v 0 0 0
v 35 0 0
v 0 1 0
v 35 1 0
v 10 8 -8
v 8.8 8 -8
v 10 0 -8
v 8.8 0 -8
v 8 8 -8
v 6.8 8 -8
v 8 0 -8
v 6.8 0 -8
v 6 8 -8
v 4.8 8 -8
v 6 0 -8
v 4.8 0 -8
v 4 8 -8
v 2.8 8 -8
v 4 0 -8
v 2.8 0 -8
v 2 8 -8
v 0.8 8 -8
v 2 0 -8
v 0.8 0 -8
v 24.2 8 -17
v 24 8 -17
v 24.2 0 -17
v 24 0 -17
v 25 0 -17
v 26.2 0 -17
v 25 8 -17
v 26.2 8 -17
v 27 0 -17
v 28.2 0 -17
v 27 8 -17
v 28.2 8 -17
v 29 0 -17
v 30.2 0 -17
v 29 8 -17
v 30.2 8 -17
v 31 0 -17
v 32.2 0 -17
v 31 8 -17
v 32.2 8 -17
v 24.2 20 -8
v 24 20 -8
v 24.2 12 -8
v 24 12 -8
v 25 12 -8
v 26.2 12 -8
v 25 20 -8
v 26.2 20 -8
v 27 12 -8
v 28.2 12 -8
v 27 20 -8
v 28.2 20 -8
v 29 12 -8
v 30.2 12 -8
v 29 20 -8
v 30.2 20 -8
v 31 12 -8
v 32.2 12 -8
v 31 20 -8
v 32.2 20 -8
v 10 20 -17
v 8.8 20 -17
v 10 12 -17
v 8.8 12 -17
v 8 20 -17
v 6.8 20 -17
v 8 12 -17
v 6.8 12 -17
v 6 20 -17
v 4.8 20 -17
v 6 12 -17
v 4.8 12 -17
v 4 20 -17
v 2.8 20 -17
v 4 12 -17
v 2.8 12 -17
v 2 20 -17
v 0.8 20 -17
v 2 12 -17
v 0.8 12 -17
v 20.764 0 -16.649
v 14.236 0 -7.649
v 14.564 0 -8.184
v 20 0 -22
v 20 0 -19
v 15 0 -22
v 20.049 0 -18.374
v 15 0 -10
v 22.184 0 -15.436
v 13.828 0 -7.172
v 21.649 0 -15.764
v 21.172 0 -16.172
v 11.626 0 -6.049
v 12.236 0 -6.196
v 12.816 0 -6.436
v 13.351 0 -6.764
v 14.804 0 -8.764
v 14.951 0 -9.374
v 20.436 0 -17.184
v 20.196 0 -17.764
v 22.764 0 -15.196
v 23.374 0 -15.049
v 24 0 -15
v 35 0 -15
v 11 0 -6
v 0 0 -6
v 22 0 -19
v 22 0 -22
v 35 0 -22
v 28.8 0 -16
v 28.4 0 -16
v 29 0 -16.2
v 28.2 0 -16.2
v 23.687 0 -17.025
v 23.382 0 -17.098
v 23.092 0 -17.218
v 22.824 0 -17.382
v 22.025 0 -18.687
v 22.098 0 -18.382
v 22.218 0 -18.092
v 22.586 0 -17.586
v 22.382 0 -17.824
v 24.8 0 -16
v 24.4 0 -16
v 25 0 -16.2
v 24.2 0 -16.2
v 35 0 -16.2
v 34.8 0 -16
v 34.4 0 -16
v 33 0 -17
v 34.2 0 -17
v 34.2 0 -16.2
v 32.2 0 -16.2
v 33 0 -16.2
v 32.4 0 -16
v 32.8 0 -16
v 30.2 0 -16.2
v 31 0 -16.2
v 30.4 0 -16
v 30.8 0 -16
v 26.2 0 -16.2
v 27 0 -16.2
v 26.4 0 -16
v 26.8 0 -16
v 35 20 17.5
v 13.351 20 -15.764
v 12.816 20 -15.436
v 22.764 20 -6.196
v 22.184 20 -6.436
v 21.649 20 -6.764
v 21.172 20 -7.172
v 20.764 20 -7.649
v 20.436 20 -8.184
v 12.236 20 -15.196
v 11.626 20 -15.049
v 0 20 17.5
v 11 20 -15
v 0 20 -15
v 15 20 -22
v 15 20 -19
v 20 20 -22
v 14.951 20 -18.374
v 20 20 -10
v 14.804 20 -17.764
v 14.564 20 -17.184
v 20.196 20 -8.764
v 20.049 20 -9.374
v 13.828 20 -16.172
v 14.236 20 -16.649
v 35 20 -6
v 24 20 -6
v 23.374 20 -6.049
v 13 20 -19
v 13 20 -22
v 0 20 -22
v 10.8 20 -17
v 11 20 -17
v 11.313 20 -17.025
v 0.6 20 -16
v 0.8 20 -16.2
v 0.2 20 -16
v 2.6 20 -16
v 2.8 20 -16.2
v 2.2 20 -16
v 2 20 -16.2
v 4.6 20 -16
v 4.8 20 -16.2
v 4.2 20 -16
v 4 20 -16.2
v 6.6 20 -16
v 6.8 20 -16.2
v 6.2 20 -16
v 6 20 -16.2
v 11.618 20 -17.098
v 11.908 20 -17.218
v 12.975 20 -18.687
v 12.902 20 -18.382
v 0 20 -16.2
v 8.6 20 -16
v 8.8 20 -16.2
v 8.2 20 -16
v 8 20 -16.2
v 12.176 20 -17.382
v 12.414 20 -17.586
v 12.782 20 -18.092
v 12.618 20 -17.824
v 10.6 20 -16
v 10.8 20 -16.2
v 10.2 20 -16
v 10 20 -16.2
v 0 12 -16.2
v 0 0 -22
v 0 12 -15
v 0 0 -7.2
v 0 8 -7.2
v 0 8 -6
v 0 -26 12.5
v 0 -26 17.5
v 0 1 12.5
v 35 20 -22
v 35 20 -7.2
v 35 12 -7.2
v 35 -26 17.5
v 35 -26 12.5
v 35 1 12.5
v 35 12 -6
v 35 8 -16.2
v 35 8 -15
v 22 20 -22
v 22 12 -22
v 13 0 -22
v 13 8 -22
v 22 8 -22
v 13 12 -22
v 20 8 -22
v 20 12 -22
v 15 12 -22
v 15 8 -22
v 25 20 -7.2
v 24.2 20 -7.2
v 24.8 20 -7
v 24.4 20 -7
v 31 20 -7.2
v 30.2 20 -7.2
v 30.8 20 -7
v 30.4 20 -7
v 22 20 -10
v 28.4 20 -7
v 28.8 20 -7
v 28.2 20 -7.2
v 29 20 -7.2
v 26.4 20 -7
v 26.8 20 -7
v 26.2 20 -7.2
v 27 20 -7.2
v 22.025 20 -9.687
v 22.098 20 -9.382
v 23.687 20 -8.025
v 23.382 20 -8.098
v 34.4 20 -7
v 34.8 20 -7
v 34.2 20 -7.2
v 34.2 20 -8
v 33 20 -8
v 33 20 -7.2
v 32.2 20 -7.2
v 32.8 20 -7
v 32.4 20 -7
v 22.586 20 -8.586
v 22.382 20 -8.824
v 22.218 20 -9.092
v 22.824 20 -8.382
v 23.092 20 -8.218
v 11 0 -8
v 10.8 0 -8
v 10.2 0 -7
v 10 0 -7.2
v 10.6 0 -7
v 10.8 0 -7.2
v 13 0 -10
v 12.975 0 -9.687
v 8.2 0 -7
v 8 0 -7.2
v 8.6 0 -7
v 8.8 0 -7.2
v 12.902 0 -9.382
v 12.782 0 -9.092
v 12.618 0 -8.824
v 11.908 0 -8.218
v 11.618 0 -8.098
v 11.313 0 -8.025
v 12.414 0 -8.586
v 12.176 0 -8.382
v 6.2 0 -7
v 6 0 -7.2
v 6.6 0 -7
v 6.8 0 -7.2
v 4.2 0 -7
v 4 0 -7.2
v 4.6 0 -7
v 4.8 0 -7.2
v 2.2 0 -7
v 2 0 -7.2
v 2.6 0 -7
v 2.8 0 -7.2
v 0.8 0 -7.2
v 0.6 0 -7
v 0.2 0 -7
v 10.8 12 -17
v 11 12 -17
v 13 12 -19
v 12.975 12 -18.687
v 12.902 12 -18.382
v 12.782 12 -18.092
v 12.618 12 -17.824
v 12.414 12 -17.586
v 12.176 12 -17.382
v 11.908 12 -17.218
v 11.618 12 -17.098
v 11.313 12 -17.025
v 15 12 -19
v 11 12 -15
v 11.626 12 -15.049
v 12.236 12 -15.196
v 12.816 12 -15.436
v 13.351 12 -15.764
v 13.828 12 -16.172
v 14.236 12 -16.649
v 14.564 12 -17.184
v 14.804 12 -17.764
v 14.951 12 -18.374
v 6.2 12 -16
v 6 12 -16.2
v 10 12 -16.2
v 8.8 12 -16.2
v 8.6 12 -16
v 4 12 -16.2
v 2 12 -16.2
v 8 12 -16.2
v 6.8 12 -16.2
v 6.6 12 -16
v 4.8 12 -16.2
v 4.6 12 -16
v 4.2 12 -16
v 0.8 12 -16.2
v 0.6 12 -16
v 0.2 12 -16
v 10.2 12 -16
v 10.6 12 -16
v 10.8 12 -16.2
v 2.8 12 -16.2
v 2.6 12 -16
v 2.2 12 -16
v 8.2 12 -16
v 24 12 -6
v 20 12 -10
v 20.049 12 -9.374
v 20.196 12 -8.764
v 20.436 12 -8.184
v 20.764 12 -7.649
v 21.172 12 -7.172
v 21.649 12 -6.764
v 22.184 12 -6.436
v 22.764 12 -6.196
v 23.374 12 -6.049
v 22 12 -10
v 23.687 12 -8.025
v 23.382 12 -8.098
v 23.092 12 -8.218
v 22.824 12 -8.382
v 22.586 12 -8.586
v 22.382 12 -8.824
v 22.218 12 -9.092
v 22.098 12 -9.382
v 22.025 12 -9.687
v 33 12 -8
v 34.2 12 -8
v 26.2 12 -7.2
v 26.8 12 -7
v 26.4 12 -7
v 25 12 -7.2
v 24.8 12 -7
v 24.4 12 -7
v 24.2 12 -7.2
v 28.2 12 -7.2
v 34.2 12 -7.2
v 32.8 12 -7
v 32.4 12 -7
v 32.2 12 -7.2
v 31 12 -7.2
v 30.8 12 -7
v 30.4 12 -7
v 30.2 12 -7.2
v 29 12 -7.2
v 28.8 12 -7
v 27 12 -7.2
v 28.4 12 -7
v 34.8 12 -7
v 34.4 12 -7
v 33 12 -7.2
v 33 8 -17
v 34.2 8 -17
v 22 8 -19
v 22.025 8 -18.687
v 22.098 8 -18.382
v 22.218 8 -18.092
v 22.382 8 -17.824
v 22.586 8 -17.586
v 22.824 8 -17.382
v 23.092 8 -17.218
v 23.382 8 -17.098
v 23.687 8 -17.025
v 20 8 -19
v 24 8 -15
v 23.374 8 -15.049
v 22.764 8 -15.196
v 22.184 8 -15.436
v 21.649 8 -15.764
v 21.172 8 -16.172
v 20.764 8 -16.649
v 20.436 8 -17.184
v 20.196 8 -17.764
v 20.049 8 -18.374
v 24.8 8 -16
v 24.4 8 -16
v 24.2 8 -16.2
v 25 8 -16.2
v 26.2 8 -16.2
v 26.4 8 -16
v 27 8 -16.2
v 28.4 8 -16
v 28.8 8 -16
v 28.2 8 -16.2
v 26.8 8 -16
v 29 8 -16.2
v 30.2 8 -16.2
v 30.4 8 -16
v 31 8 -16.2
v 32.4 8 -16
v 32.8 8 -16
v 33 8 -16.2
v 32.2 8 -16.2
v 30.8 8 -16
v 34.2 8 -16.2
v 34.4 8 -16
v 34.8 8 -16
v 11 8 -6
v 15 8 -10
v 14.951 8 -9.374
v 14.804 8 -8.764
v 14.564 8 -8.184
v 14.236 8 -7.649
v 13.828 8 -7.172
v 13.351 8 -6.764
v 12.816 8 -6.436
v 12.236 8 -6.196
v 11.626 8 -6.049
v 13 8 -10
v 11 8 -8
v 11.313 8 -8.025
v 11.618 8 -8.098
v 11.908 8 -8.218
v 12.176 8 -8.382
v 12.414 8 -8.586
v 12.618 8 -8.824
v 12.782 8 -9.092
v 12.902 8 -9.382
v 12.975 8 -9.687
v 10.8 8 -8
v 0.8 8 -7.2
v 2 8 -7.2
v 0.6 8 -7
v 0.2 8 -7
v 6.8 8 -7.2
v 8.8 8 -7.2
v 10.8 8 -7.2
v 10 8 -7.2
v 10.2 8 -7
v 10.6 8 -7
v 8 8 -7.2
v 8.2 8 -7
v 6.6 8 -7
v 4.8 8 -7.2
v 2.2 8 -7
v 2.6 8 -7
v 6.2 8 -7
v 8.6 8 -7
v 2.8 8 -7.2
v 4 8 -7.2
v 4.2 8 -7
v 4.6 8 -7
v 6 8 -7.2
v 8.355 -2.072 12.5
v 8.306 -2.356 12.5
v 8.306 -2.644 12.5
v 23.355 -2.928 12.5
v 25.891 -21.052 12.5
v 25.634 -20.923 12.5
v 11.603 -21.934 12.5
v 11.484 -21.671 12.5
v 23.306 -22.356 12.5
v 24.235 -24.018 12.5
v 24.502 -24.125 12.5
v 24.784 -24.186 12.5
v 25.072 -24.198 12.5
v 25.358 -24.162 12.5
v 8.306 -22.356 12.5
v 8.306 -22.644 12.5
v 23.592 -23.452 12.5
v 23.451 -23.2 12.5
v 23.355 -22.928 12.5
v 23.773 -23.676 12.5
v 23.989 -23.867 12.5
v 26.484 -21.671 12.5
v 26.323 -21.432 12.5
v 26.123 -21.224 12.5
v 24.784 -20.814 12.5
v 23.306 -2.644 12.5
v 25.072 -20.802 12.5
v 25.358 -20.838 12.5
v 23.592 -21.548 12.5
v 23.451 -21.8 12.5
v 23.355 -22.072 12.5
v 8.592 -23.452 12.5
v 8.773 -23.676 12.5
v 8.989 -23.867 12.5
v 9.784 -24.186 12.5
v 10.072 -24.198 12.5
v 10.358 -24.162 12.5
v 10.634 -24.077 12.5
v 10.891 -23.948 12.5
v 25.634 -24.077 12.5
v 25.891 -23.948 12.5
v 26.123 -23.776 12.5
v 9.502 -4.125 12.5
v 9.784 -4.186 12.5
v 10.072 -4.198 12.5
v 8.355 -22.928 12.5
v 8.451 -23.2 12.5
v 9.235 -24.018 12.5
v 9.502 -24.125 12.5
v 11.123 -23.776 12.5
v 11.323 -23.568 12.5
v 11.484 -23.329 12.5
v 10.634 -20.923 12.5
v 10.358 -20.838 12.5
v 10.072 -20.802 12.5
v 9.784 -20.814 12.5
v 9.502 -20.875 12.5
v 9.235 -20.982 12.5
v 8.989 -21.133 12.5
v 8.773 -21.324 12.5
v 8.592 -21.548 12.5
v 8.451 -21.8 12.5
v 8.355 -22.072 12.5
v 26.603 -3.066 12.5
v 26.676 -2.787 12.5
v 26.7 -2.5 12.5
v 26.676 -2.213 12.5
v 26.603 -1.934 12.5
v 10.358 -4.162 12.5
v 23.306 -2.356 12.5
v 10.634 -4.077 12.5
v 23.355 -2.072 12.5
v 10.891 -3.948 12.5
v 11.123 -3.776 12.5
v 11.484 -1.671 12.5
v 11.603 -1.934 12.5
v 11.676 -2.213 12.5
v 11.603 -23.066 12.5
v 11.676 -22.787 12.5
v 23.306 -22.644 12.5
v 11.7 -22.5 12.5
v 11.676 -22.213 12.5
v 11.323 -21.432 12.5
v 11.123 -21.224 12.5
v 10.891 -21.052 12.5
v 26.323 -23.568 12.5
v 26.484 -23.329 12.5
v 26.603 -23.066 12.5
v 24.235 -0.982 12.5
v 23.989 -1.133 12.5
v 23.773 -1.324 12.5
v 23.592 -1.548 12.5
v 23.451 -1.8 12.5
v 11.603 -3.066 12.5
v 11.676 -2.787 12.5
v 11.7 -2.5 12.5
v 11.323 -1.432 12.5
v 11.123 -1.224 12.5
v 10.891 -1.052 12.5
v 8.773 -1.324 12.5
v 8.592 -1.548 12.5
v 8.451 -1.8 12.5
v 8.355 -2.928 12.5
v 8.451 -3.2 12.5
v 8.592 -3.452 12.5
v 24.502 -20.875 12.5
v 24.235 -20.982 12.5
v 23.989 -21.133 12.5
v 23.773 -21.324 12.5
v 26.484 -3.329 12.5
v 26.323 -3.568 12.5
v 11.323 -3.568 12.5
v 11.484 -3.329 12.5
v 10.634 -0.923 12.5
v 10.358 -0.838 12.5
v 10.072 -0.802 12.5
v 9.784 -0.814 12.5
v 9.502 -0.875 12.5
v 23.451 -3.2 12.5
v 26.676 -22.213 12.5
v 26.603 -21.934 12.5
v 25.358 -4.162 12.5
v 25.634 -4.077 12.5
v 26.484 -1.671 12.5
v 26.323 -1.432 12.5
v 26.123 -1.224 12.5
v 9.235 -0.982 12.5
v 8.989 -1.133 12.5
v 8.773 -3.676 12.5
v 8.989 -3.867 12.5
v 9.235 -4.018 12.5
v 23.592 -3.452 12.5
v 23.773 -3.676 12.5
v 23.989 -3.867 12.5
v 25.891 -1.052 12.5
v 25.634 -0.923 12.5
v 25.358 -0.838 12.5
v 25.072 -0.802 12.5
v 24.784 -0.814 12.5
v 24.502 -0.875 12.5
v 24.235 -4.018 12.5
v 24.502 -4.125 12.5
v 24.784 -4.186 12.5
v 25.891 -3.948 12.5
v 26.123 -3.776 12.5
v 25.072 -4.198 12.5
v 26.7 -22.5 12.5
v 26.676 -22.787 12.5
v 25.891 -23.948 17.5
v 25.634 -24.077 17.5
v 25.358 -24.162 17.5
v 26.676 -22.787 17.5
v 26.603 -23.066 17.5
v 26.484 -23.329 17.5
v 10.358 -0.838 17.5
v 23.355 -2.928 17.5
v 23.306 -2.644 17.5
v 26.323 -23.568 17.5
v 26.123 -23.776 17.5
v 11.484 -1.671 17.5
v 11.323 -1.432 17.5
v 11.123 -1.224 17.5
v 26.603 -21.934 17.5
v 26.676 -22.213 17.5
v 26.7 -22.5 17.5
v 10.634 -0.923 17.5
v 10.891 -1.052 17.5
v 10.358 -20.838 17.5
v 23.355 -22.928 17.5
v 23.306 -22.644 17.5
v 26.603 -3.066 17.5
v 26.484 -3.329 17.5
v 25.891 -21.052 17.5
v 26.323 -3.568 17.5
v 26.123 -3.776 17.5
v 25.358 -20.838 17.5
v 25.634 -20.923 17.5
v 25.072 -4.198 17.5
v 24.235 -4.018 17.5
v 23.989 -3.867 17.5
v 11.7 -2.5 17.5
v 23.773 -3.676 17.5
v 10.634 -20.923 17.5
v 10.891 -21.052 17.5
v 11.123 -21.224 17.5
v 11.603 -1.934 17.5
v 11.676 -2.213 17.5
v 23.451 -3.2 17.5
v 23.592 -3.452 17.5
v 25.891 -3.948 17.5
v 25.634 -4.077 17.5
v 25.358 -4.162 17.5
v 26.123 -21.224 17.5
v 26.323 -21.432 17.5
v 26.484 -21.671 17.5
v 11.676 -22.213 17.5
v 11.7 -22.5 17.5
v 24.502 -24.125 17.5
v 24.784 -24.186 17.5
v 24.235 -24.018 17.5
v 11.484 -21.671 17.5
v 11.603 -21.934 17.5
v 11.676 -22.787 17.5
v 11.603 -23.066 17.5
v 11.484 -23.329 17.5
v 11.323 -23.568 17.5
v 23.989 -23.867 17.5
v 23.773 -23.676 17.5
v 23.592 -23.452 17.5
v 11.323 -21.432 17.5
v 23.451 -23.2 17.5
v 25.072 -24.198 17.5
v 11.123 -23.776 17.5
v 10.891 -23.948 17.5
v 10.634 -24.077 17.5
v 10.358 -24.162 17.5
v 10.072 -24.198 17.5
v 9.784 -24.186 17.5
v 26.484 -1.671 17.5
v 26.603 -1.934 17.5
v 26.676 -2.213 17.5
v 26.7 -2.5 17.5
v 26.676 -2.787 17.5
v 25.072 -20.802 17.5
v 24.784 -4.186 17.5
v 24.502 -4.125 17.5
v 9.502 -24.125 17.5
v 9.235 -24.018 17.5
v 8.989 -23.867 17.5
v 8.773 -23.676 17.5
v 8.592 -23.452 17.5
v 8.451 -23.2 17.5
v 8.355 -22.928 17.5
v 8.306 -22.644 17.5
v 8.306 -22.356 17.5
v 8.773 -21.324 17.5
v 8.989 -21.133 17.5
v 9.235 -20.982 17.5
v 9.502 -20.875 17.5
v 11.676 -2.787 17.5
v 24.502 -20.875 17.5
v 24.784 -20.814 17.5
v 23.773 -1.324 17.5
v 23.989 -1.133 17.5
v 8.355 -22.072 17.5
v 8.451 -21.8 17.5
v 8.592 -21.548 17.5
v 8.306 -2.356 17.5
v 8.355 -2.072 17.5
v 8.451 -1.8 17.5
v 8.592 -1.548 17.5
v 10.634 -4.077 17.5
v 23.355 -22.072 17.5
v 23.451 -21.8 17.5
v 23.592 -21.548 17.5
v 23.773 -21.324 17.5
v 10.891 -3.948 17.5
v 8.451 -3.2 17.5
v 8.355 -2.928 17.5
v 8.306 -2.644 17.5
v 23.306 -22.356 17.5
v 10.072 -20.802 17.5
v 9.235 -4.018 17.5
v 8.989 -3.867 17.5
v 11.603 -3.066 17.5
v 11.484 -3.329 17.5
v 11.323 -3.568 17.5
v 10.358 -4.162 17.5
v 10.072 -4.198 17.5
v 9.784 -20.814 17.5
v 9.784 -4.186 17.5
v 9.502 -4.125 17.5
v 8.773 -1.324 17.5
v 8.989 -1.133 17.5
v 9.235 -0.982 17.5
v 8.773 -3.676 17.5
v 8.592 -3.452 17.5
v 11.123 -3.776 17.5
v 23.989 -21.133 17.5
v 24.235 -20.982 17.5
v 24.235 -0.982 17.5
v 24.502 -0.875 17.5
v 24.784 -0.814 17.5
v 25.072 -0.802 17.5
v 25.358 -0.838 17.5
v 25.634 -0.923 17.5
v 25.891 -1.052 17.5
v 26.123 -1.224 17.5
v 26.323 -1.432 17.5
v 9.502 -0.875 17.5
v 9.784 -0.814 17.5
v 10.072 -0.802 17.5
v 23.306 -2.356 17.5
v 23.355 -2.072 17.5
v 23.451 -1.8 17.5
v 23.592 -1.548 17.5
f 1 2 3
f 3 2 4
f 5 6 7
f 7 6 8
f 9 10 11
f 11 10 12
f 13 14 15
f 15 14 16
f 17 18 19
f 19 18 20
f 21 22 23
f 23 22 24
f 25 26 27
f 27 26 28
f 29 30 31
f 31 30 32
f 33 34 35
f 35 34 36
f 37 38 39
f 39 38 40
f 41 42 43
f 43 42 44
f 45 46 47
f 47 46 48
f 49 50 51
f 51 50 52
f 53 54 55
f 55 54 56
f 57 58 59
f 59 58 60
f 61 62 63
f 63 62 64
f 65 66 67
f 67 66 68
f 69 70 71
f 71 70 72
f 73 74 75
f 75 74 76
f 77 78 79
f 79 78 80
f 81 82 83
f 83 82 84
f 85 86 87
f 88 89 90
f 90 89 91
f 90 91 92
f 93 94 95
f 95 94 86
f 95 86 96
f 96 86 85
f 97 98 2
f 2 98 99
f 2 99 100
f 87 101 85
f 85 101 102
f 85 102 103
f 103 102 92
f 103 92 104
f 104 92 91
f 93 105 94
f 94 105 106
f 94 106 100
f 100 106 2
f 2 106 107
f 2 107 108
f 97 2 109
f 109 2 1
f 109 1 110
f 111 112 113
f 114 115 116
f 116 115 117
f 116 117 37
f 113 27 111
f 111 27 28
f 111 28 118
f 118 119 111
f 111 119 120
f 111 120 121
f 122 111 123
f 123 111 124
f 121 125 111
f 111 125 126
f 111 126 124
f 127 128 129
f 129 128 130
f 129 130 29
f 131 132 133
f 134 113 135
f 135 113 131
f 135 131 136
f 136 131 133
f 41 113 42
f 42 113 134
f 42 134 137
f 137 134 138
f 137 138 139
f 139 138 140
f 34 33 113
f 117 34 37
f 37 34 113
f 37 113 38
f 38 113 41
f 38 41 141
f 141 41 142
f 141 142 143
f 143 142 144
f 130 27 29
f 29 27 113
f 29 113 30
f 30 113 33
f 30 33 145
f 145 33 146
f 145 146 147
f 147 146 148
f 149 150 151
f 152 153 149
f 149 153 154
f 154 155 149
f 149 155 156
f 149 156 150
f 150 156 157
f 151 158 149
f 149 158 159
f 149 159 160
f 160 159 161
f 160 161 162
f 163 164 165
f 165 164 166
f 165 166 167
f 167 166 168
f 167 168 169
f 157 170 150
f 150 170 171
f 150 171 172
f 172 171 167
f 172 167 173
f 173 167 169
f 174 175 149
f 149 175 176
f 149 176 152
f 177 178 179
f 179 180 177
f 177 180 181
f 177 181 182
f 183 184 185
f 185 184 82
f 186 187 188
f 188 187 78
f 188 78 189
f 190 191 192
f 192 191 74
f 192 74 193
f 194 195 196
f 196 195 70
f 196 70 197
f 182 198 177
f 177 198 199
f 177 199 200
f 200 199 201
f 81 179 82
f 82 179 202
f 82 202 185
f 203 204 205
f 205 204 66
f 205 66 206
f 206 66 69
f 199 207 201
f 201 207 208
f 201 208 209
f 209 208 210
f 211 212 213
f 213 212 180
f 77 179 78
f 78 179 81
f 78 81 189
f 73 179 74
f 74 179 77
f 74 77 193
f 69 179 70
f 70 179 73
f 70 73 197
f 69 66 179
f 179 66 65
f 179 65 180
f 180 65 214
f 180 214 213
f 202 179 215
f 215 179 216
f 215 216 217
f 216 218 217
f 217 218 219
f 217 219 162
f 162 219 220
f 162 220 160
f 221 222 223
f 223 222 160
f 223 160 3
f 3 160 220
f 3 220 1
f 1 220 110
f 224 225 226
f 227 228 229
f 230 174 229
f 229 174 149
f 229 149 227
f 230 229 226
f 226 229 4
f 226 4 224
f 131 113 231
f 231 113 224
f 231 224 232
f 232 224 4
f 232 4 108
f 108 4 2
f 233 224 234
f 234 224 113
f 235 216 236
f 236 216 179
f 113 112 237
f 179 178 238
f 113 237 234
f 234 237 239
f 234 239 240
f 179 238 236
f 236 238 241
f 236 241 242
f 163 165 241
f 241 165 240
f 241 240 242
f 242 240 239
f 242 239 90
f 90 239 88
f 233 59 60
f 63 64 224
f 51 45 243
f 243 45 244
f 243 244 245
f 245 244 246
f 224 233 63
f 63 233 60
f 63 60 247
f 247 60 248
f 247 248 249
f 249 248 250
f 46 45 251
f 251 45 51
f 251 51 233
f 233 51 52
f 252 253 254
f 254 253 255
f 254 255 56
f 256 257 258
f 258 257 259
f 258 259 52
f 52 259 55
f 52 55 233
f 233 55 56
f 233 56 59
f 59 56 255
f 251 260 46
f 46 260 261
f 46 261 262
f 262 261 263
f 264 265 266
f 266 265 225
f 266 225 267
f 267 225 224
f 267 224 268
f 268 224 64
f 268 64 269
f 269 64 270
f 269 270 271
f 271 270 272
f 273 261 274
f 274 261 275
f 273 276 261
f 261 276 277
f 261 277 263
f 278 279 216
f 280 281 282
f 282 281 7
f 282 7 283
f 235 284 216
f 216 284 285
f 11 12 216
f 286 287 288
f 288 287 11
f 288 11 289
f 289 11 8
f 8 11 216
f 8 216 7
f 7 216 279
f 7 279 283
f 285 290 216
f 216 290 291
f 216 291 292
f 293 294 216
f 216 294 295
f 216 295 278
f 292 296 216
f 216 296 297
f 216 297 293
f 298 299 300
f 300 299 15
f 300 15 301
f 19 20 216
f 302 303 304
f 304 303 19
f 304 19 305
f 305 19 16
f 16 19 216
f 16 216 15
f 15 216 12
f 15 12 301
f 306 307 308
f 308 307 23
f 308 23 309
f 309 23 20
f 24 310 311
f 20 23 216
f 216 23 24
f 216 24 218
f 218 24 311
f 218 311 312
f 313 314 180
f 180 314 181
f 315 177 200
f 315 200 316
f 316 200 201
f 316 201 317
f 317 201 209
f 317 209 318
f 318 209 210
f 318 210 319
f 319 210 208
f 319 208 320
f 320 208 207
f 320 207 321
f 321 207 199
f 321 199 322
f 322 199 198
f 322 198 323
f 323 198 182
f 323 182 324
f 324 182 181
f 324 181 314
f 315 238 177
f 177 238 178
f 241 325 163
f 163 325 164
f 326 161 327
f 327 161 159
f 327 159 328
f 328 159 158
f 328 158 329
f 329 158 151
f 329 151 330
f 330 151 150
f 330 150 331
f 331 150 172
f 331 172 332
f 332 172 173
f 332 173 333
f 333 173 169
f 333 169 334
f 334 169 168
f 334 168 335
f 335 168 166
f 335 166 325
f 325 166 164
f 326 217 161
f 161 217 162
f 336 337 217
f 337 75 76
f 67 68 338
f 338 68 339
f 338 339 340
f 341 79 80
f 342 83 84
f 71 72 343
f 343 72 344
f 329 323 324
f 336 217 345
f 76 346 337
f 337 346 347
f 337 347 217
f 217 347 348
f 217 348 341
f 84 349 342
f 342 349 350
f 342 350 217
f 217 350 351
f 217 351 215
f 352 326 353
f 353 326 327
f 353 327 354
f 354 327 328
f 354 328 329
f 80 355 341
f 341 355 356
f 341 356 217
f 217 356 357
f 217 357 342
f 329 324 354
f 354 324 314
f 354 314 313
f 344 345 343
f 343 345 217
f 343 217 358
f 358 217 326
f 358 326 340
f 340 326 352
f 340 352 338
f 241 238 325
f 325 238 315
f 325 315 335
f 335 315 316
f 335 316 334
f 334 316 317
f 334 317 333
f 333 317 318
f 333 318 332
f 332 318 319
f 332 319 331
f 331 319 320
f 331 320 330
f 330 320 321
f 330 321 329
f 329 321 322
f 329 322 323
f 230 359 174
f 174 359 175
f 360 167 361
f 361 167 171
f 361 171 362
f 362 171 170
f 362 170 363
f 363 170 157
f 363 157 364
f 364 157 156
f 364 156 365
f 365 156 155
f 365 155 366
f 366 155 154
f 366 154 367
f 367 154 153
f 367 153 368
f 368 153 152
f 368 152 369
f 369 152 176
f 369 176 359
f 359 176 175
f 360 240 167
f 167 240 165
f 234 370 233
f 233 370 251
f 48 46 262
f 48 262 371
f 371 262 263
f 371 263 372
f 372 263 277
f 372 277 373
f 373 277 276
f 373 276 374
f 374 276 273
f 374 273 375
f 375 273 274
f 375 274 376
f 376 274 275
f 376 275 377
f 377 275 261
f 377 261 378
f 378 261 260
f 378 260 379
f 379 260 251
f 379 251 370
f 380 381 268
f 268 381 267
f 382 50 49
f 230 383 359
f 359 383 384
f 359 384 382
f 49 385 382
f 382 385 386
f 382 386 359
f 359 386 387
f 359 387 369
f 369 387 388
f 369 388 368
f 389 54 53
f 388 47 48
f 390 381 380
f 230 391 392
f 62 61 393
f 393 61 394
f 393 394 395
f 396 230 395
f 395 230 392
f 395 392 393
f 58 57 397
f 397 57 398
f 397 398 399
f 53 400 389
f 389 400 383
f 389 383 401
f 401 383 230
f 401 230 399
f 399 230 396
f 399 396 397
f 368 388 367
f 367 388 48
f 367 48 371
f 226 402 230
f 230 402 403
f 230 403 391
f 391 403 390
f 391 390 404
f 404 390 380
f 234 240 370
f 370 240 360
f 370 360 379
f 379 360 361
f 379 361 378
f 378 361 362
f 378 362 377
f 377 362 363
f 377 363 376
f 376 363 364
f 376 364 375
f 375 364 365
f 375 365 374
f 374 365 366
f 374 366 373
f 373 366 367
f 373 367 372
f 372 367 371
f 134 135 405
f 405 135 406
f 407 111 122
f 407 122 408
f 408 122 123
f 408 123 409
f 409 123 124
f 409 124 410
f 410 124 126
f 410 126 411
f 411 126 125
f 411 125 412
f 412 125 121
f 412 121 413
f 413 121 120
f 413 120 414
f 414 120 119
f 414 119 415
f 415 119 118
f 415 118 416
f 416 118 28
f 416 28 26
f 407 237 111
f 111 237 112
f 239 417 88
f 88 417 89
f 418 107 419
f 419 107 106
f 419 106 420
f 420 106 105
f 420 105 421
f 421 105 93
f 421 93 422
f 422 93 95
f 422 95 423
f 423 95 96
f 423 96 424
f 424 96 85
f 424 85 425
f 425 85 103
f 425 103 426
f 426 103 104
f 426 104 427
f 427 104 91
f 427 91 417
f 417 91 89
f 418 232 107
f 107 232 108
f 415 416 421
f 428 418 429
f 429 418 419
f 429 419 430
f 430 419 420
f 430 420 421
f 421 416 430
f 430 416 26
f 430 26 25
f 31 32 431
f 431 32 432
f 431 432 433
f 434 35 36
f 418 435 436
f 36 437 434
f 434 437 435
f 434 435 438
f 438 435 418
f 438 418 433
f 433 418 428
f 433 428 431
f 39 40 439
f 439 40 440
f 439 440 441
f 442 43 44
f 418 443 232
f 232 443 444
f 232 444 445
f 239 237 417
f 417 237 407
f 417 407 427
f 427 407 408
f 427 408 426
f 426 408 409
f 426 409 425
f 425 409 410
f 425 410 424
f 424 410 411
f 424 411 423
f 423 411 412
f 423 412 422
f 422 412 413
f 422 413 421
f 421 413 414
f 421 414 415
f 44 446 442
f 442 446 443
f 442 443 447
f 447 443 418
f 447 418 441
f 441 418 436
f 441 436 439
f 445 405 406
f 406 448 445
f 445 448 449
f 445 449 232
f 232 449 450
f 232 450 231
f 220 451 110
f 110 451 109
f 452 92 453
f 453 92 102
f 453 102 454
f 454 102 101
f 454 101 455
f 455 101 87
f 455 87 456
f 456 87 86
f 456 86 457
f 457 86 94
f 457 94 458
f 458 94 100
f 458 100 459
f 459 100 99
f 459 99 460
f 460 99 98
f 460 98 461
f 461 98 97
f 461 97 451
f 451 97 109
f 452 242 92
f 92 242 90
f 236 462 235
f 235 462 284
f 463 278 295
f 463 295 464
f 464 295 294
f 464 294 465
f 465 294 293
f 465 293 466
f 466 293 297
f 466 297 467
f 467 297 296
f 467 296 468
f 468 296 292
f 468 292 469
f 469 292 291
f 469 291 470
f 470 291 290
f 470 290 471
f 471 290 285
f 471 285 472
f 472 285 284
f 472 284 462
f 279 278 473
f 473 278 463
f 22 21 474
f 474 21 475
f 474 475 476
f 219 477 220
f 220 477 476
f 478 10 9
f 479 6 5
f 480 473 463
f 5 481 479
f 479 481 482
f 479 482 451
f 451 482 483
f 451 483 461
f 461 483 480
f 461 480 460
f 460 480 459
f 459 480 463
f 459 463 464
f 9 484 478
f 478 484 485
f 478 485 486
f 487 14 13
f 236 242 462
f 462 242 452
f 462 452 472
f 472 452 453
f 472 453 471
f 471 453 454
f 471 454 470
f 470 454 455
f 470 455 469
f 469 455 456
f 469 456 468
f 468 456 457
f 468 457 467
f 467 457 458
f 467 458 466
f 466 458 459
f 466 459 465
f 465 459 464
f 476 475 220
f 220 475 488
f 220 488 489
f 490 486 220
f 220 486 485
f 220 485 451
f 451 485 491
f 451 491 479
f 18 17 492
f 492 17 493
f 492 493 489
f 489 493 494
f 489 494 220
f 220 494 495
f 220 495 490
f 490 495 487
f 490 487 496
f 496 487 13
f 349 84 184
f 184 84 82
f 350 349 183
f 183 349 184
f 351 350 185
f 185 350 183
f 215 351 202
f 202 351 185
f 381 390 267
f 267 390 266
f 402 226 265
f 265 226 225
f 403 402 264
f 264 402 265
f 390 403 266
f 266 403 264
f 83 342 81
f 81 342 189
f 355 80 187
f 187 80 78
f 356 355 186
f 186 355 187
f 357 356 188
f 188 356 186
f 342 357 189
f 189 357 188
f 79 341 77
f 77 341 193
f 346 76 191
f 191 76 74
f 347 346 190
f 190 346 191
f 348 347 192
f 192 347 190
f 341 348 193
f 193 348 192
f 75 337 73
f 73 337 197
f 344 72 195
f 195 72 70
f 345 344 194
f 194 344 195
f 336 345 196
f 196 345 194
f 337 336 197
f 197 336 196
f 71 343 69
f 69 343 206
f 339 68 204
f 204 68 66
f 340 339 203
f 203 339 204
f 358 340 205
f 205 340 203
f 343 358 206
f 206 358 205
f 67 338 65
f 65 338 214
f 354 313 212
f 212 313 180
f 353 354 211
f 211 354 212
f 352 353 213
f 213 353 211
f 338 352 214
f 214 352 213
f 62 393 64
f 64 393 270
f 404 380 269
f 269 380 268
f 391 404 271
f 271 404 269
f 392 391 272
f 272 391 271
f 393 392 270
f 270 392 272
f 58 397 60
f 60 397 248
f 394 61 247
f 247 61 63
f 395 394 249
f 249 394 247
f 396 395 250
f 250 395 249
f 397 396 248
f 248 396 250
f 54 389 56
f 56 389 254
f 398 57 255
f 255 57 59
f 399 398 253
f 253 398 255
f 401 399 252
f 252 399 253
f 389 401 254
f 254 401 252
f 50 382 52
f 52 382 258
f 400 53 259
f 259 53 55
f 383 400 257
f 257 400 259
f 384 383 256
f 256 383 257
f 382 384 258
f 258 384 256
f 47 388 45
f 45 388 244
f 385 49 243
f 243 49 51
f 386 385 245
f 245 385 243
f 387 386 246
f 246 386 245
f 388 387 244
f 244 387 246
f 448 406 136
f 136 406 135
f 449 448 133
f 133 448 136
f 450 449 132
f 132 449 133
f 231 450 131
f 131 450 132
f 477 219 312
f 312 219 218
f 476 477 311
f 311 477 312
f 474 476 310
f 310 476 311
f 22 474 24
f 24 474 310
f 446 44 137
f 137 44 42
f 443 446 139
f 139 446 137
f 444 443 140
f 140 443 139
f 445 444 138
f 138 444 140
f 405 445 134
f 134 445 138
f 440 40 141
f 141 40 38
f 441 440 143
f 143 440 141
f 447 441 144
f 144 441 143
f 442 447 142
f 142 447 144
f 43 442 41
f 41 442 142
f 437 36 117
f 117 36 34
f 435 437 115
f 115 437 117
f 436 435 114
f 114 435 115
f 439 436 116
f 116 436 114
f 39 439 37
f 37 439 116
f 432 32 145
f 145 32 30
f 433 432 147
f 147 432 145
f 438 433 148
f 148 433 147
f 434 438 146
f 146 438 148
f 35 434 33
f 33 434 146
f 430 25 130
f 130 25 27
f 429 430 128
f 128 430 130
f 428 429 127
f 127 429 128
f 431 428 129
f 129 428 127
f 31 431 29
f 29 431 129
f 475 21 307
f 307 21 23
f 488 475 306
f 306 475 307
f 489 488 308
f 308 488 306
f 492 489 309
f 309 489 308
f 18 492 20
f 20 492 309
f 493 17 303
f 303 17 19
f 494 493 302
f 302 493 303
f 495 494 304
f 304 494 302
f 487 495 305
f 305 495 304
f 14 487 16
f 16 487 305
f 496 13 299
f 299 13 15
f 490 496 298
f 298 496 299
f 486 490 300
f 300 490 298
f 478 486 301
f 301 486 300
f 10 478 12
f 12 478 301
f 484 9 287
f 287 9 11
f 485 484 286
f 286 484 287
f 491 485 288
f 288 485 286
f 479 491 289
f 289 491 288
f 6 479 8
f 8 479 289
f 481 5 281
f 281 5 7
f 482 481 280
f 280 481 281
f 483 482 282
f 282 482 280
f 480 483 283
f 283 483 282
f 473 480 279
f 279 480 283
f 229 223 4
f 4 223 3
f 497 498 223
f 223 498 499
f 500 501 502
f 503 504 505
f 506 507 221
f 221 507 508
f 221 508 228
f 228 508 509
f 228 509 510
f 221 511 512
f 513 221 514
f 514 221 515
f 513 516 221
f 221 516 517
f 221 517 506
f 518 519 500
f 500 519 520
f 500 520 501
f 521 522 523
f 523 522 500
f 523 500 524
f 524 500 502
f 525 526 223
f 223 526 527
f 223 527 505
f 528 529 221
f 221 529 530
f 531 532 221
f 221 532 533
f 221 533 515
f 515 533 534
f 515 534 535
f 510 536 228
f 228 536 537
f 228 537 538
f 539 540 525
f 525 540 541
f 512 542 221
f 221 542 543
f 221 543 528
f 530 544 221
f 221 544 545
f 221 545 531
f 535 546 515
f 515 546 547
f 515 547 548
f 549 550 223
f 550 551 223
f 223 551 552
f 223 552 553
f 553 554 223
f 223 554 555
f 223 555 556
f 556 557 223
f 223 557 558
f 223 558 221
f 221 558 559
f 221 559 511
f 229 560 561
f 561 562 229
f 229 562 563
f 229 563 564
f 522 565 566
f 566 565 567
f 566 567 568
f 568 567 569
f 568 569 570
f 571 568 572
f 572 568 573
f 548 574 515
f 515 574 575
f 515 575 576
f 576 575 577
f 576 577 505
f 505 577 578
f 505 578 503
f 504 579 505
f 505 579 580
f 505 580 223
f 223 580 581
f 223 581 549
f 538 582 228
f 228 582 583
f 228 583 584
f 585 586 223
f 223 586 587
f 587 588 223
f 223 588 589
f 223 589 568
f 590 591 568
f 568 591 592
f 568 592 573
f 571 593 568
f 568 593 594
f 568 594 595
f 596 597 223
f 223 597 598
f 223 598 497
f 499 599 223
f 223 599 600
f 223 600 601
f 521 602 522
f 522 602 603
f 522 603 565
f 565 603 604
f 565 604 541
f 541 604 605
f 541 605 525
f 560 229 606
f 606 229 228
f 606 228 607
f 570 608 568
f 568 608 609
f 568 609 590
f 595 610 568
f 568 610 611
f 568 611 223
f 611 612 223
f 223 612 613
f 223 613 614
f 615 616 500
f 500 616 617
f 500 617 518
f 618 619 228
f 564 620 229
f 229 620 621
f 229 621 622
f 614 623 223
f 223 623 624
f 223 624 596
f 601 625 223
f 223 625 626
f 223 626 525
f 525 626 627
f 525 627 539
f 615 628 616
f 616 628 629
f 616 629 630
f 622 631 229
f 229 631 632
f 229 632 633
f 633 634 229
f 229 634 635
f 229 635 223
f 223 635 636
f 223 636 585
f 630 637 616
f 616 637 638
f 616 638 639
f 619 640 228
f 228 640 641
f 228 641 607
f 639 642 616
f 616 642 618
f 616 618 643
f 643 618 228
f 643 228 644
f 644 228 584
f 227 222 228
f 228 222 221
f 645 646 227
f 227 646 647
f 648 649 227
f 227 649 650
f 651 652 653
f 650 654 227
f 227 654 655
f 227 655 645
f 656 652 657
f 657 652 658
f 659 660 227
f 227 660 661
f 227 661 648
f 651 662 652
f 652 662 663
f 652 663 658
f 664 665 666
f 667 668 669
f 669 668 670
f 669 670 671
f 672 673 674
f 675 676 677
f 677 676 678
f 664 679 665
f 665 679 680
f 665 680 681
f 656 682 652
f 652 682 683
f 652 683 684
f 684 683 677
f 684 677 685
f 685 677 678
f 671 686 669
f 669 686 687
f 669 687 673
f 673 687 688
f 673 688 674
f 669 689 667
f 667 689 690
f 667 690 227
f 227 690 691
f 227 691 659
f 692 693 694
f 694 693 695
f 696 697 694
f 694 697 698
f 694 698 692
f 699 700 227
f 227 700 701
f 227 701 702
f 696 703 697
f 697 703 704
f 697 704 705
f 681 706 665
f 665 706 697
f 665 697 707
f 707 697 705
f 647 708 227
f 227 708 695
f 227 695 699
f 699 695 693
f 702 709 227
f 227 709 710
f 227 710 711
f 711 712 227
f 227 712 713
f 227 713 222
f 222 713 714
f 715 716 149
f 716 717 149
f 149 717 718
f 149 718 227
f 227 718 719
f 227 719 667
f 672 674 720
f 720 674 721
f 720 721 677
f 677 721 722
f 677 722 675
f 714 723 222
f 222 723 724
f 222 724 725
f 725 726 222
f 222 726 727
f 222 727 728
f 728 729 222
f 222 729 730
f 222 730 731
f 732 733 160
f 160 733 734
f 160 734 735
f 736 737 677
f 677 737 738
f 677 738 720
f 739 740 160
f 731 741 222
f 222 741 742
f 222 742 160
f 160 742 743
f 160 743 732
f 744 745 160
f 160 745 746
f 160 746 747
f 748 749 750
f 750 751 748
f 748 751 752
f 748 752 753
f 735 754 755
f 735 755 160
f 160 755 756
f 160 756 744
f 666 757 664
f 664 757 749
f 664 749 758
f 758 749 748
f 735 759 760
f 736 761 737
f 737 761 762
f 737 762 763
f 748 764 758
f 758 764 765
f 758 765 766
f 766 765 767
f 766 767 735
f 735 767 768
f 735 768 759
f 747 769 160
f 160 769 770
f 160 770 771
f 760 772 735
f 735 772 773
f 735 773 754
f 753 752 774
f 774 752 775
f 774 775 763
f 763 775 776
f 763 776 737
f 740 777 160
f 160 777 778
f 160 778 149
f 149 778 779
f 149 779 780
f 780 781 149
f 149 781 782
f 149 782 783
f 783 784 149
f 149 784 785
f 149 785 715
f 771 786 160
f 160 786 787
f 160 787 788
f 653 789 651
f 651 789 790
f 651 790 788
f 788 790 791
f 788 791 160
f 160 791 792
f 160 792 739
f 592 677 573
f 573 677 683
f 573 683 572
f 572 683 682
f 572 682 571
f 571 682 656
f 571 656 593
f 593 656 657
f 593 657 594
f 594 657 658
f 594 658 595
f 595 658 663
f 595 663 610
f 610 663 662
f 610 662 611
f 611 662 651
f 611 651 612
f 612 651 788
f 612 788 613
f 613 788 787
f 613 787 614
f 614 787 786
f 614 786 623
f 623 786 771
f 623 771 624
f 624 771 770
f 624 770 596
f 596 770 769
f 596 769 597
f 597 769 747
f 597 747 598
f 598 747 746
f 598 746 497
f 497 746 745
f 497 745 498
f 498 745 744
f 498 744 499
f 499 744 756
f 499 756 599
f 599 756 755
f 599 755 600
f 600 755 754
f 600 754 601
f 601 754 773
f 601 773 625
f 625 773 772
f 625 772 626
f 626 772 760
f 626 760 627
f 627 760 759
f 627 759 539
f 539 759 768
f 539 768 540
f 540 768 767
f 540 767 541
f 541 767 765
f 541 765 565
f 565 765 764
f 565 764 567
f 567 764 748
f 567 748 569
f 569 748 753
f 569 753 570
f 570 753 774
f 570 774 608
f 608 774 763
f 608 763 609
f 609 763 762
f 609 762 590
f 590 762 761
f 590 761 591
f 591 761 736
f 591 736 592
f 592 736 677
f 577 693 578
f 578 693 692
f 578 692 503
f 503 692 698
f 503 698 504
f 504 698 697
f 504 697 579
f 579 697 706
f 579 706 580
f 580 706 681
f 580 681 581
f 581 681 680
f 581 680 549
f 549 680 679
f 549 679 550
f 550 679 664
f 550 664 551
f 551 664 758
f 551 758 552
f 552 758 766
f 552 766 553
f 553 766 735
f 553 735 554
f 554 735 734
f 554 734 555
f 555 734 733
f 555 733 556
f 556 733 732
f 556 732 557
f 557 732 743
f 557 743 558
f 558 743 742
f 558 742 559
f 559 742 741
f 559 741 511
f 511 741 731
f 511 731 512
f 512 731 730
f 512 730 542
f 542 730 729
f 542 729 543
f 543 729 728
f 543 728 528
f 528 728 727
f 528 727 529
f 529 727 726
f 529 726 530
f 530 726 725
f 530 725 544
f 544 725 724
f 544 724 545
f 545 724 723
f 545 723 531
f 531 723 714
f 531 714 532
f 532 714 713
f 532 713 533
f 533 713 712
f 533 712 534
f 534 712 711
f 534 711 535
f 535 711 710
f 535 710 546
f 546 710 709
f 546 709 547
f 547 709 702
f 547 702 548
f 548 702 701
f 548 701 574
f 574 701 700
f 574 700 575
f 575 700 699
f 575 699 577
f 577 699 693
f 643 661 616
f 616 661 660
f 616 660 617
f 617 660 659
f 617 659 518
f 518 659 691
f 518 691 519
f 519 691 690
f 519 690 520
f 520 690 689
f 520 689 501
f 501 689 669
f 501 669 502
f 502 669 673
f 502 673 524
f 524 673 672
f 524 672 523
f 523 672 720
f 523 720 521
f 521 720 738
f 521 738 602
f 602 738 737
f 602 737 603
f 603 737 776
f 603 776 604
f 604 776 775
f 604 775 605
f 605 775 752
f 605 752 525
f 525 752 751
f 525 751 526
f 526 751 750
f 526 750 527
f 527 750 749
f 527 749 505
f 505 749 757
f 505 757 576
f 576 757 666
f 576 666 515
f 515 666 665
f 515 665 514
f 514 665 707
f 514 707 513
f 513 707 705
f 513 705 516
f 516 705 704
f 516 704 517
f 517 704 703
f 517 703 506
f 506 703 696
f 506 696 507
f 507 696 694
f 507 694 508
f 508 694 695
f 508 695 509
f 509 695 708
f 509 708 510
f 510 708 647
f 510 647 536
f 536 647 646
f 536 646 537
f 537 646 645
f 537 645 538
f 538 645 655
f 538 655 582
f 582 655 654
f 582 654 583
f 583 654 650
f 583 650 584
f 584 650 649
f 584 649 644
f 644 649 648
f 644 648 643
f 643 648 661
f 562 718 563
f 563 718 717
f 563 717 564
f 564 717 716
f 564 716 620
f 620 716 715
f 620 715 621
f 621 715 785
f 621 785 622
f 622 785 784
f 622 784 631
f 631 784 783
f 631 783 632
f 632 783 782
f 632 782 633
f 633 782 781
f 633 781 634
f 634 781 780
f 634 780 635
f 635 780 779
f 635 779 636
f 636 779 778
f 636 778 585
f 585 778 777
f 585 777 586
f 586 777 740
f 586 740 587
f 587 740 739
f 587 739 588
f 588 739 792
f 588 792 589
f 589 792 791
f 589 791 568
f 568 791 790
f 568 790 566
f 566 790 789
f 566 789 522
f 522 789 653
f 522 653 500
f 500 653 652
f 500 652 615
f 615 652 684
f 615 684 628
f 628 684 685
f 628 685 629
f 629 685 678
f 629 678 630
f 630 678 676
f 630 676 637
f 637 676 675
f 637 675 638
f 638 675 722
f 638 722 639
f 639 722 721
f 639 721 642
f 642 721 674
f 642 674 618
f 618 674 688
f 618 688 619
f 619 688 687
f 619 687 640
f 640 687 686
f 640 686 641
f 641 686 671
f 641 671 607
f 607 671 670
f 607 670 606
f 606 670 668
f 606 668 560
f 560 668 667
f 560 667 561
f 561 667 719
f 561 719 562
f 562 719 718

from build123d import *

# Parameters (mm, degrees)
SKETCH1_W           = 35
SKETCH1_H           = 22
BOSS_EXTRUDE1_DEPTH = 20
CUT_EXTRUDE1_DEPTH  = 8
CUT_EXTRUDE2_DEPTH  = 8
BOSS_EXTRUDE2_DEPTH = 8
BOSS_EXTRUDE4_DEPTH = 8
SKETCH9_W           = 35
SKETCH9_H           = 19
BOSS_EXTRUDE5_DEPTH = 12.5
SKETCH11_W          = 35
SKETCH11_H          = 46
BOSS_EXTRUDE6_DEPTH = 5
SKETCH12_R          = 1.7
CUT_EXTRUDE3_DEPTH  = 5


with BuildPart() as part:
    # Sketch1 → Boss-Extrude1 (new body)
    with BuildSketch(Plane(origin=(0, 0, 0), x_dir=(1, 0, 0), z_dir=(0, 1, 0))):
        with Locations((17.5, 11)):
            Rectangle(SKETCH1_W, SKETCH1_H)
    extrude(amount=BOSS_EXTRUDE1_DEPTH)

    # Sketch2 → Cut-Extrude1 (cut)
    with BuildSketch(Plane(origin=(0, 20, 0), x_dir=(1, 0, 0), z_dir=(0, 1, 0))):
        with BuildLine():
            Line((0, 15), (11, 15))
            ThreePointArc((11, 15), (13.828427125, 16.171572875), (15, 19))
            Line((15, 19), (15, 22))
            Line((15, 22), (13, 22))
            Line((13, 22), (13, 19))
            ThreePointArc((13, 19), (12.414213562, 17.585786438), (11, 17))
            Line((11, 17), (0, 17))
            Line((0, 17), (0, 15))
        make_face()
        with BuildLine():
            Line((35, 6), (24, 6))
            ThreePointArc((24, 6), (21.171572875, 7.171572875), (20, 10))
            Line((20, 10), (20, 22))
            Line((20, 22), (22, 22))
            Line((22, 22), (22, 10))
            ThreePointArc((22, 10), (22.585786438, 8.585786438), (24, 8))
            Line((24, 8), (35, 8))
            Line((35, 8), (35, 6))
        make_face()
    extrude(amount=-CUT_EXTRUDE1_DEPTH, mode=Mode.SUBTRACT)

    # Sketch5 → Cut-Extrude2 (cut)
    with BuildSketch(Plane(origin=(0, 0, 0), x_dir=(-1, 0, 0), z_dir=(0, -1, 0))):
        with BuildLine():
            Line((-35, 15), (-24, 15))
            ThreePointArc((-24, 15), (-21.171572875, 16.171572875), (-20, 19))
            Line((-20, 19), (-20, 22))
            Line((-20, 22), (-22, 22))
            Line((-22, 22), (-22, 19))
            ThreePointArc((-22, 19), (-22.585786438, 17.585786438), (-24, 17))
            Line((-24, 17), (-35, 17))
            Line((-35, 17), (-35, 15))
        make_face()
        with BuildLine():
            Line((0, 6), (-11, 6))
            ThreePointArc((-11, 6), (-13.828427125, 7.171572875), (-15, 10))
            Line((-15, 10), (-15, 22))
            Line((-15, 22), (-13, 22))
            Line((-13, 22), (-13, 10))
            ThreePointArc((-13, 10), (-12.414213562, 8.585786438), (-11, 8))
            Line((-11, 8), (0, 8))
            Line((0, 8), (0, 6))
        make_face()
    extrude(amount=-CUT_EXTRUDE2_DEPTH, mode=Mode.SUBTRACT)

    # Sketch6 → Boss-Extrude2 (add)
    with BuildSketch(Plane(origin=(0, 20, 0), x_dir=(1, 0, 0), z_dir=(0, 1, 0))):
        Polygon((0.2, 16), (0, 16.2), (0, 17), (0.8, 17), (0.8, 16.2), (0.6, 16), align=None)
        Polygon((2.2, 16), (2, 16.2), (2, 17), (2.8, 17), (2.8, 16.2), (2.6, 16), align=None)
        Polygon((4.2, 16), (4, 16.2), (4, 17), (4.8, 17), (4.8, 16.2), (4.6, 16), align=None)
        Polygon((6.2, 16), (6, 16.2), (6, 17), (6.8, 17), (6.8, 16.2), (6.6, 16), align=None)
        Polygon((8.2, 16), (8, 16.2), (8, 17), (8.8, 17), (8.8, 16.2), (8.6, 16), align=None)
        Polygon((10.2, 16), (10, 16.2), (10, 17), (10.8, 17), (10.8, 16.2), (10.6, 16), align=None)
        Polygon((34.4, 7), (34.2, 7.2), (34.2, 8), (35, 8), (35, 7.2), (34.8, 7), align=None)
        Polygon((32.4, 7), (32.2, 7.2), (32.2, 8), (33, 8), (33, 7.2), (32.8, 7), align=None)
        Polygon((30.4, 7), (30.2, 7.2), (30.2, 8), (31, 8), (31, 7.2), (30.8, 7), align=None)
        Polygon((28.4, 7), (28.2, 7.2), (28.2, 8), (29, 8), (29, 7.2), (28.8, 7), align=None)
        Polygon((26.4, 7), (26.2, 7.2), (26.2, 8), (27, 8), (27, 7.2), (26.8, 7), align=None)
        Polygon((24.4, 7), (24.2, 7.2), (24.2, 8), (25, 8), (25, 7.2), (24.8, 7), align=None)
    extrude(amount=-BOSS_EXTRUDE2_DEPTH)

    # Sketch8 → Boss-Extrude4 (add)
    with BuildSketch(Plane.XZ):
        Polygon((35, -17), (35, -16.2), (34.8, -16), (34.4, -16), (34.2, -16.2), (34.2, -17), align=None)
        Polygon((33, -17), (33, -16.2), (32.8, -16), (32.4, -16), (32.2, -16.2), (32.2, -17), align=None)
        Polygon((31, -17), (31, -16.2), (30.8, -16), (30.4, -16), (30.2, -16.2), (30.2, -17), align=None)
        Polygon((29, -17), (29, -16.2), (28.8, -16), (28.4, -16), (28.2, -16.2), (28.2, -17), align=None)
        Polygon((27, -17), (27, -16.2), (26.8, -16), (26.4, -16), (26.2, -16.2), (26.2, -17), align=None)
        Polygon((25, -17), (25, -16.2), (24.8, -16), (24.4, -16), (24.2, -16.2), (24.2, -17), align=None)
        Polygon((0.8, -8), (0.8, -7.2), (0.6, -7), (0.2, -7), (0, -7.2), (0, -8), align=None)
        Polygon((2.8, -8), (2.8, -7.2), (2.6, -7), (2.2, -7), (2, -7.2), (2, -8), align=None)
        Polygon((4.8, -8), (4.8, -7.2), (4.6, -7), (4.2, -7), (4, -7.2), (4, -8), align=None)
        Polygon((6.8, -8), (6.8, -7.2), (6.6, -7), (6.2, -7), (6, -7.2), (6, -8), align=None)
        Polygon((8.8, -8), (8.8, -7.2), (8.6, -7), (8.2, -7), (8, -7.2), (8, -8), align=None)
        Polygon((10.8, -8), (10.8, -7.2), (10.6, -7), (10.2, -7), (10, -7.2), (10, -8), align=None)
    extrude(amount=-BOSS_EXTRUDE4_DEPTH)

    # Sketch9 → Boss-Extrude5 (add)
    with BuildSketch(Plane.XY):
        with Locations((17.5, 10.5)):
            Rectangle(SKETCH9_W, SKETCH9_H)
    extrude(amount=BOSS_EXTRUDE5_DEPTH)

    # Sketch11 → Boss-Extrude6 (add)
    with BuildSketch(Plane.XY.offset(12.5)):
        with Locations((17.5, -3)):
            Rectangle(SKETCH11_W, SKETCH11_H)
    extrude(amount=BOSS_EXTRUDE6_DEPTH)

    # Sketch12 → Cut-Extrude3 (cut)
    with BuildSketch(Plane.XY.offset(17.5)):
        with Locations((10, -2.5)):
            Circle(SKETCH12_R)
        with Locations((25, -2.5)):
            Circle(SKETCH12_R)
        with Locations((25, -22.5)):
            Circle(SKETCH12_R)
        with Locations((10, -22.5)):
            Circle(SKETCH12_R)
    extrude(amount=-CUT_EXTRUDE3_DEPTH, mode=Mode.SUBTRACT)


solid = part.part
